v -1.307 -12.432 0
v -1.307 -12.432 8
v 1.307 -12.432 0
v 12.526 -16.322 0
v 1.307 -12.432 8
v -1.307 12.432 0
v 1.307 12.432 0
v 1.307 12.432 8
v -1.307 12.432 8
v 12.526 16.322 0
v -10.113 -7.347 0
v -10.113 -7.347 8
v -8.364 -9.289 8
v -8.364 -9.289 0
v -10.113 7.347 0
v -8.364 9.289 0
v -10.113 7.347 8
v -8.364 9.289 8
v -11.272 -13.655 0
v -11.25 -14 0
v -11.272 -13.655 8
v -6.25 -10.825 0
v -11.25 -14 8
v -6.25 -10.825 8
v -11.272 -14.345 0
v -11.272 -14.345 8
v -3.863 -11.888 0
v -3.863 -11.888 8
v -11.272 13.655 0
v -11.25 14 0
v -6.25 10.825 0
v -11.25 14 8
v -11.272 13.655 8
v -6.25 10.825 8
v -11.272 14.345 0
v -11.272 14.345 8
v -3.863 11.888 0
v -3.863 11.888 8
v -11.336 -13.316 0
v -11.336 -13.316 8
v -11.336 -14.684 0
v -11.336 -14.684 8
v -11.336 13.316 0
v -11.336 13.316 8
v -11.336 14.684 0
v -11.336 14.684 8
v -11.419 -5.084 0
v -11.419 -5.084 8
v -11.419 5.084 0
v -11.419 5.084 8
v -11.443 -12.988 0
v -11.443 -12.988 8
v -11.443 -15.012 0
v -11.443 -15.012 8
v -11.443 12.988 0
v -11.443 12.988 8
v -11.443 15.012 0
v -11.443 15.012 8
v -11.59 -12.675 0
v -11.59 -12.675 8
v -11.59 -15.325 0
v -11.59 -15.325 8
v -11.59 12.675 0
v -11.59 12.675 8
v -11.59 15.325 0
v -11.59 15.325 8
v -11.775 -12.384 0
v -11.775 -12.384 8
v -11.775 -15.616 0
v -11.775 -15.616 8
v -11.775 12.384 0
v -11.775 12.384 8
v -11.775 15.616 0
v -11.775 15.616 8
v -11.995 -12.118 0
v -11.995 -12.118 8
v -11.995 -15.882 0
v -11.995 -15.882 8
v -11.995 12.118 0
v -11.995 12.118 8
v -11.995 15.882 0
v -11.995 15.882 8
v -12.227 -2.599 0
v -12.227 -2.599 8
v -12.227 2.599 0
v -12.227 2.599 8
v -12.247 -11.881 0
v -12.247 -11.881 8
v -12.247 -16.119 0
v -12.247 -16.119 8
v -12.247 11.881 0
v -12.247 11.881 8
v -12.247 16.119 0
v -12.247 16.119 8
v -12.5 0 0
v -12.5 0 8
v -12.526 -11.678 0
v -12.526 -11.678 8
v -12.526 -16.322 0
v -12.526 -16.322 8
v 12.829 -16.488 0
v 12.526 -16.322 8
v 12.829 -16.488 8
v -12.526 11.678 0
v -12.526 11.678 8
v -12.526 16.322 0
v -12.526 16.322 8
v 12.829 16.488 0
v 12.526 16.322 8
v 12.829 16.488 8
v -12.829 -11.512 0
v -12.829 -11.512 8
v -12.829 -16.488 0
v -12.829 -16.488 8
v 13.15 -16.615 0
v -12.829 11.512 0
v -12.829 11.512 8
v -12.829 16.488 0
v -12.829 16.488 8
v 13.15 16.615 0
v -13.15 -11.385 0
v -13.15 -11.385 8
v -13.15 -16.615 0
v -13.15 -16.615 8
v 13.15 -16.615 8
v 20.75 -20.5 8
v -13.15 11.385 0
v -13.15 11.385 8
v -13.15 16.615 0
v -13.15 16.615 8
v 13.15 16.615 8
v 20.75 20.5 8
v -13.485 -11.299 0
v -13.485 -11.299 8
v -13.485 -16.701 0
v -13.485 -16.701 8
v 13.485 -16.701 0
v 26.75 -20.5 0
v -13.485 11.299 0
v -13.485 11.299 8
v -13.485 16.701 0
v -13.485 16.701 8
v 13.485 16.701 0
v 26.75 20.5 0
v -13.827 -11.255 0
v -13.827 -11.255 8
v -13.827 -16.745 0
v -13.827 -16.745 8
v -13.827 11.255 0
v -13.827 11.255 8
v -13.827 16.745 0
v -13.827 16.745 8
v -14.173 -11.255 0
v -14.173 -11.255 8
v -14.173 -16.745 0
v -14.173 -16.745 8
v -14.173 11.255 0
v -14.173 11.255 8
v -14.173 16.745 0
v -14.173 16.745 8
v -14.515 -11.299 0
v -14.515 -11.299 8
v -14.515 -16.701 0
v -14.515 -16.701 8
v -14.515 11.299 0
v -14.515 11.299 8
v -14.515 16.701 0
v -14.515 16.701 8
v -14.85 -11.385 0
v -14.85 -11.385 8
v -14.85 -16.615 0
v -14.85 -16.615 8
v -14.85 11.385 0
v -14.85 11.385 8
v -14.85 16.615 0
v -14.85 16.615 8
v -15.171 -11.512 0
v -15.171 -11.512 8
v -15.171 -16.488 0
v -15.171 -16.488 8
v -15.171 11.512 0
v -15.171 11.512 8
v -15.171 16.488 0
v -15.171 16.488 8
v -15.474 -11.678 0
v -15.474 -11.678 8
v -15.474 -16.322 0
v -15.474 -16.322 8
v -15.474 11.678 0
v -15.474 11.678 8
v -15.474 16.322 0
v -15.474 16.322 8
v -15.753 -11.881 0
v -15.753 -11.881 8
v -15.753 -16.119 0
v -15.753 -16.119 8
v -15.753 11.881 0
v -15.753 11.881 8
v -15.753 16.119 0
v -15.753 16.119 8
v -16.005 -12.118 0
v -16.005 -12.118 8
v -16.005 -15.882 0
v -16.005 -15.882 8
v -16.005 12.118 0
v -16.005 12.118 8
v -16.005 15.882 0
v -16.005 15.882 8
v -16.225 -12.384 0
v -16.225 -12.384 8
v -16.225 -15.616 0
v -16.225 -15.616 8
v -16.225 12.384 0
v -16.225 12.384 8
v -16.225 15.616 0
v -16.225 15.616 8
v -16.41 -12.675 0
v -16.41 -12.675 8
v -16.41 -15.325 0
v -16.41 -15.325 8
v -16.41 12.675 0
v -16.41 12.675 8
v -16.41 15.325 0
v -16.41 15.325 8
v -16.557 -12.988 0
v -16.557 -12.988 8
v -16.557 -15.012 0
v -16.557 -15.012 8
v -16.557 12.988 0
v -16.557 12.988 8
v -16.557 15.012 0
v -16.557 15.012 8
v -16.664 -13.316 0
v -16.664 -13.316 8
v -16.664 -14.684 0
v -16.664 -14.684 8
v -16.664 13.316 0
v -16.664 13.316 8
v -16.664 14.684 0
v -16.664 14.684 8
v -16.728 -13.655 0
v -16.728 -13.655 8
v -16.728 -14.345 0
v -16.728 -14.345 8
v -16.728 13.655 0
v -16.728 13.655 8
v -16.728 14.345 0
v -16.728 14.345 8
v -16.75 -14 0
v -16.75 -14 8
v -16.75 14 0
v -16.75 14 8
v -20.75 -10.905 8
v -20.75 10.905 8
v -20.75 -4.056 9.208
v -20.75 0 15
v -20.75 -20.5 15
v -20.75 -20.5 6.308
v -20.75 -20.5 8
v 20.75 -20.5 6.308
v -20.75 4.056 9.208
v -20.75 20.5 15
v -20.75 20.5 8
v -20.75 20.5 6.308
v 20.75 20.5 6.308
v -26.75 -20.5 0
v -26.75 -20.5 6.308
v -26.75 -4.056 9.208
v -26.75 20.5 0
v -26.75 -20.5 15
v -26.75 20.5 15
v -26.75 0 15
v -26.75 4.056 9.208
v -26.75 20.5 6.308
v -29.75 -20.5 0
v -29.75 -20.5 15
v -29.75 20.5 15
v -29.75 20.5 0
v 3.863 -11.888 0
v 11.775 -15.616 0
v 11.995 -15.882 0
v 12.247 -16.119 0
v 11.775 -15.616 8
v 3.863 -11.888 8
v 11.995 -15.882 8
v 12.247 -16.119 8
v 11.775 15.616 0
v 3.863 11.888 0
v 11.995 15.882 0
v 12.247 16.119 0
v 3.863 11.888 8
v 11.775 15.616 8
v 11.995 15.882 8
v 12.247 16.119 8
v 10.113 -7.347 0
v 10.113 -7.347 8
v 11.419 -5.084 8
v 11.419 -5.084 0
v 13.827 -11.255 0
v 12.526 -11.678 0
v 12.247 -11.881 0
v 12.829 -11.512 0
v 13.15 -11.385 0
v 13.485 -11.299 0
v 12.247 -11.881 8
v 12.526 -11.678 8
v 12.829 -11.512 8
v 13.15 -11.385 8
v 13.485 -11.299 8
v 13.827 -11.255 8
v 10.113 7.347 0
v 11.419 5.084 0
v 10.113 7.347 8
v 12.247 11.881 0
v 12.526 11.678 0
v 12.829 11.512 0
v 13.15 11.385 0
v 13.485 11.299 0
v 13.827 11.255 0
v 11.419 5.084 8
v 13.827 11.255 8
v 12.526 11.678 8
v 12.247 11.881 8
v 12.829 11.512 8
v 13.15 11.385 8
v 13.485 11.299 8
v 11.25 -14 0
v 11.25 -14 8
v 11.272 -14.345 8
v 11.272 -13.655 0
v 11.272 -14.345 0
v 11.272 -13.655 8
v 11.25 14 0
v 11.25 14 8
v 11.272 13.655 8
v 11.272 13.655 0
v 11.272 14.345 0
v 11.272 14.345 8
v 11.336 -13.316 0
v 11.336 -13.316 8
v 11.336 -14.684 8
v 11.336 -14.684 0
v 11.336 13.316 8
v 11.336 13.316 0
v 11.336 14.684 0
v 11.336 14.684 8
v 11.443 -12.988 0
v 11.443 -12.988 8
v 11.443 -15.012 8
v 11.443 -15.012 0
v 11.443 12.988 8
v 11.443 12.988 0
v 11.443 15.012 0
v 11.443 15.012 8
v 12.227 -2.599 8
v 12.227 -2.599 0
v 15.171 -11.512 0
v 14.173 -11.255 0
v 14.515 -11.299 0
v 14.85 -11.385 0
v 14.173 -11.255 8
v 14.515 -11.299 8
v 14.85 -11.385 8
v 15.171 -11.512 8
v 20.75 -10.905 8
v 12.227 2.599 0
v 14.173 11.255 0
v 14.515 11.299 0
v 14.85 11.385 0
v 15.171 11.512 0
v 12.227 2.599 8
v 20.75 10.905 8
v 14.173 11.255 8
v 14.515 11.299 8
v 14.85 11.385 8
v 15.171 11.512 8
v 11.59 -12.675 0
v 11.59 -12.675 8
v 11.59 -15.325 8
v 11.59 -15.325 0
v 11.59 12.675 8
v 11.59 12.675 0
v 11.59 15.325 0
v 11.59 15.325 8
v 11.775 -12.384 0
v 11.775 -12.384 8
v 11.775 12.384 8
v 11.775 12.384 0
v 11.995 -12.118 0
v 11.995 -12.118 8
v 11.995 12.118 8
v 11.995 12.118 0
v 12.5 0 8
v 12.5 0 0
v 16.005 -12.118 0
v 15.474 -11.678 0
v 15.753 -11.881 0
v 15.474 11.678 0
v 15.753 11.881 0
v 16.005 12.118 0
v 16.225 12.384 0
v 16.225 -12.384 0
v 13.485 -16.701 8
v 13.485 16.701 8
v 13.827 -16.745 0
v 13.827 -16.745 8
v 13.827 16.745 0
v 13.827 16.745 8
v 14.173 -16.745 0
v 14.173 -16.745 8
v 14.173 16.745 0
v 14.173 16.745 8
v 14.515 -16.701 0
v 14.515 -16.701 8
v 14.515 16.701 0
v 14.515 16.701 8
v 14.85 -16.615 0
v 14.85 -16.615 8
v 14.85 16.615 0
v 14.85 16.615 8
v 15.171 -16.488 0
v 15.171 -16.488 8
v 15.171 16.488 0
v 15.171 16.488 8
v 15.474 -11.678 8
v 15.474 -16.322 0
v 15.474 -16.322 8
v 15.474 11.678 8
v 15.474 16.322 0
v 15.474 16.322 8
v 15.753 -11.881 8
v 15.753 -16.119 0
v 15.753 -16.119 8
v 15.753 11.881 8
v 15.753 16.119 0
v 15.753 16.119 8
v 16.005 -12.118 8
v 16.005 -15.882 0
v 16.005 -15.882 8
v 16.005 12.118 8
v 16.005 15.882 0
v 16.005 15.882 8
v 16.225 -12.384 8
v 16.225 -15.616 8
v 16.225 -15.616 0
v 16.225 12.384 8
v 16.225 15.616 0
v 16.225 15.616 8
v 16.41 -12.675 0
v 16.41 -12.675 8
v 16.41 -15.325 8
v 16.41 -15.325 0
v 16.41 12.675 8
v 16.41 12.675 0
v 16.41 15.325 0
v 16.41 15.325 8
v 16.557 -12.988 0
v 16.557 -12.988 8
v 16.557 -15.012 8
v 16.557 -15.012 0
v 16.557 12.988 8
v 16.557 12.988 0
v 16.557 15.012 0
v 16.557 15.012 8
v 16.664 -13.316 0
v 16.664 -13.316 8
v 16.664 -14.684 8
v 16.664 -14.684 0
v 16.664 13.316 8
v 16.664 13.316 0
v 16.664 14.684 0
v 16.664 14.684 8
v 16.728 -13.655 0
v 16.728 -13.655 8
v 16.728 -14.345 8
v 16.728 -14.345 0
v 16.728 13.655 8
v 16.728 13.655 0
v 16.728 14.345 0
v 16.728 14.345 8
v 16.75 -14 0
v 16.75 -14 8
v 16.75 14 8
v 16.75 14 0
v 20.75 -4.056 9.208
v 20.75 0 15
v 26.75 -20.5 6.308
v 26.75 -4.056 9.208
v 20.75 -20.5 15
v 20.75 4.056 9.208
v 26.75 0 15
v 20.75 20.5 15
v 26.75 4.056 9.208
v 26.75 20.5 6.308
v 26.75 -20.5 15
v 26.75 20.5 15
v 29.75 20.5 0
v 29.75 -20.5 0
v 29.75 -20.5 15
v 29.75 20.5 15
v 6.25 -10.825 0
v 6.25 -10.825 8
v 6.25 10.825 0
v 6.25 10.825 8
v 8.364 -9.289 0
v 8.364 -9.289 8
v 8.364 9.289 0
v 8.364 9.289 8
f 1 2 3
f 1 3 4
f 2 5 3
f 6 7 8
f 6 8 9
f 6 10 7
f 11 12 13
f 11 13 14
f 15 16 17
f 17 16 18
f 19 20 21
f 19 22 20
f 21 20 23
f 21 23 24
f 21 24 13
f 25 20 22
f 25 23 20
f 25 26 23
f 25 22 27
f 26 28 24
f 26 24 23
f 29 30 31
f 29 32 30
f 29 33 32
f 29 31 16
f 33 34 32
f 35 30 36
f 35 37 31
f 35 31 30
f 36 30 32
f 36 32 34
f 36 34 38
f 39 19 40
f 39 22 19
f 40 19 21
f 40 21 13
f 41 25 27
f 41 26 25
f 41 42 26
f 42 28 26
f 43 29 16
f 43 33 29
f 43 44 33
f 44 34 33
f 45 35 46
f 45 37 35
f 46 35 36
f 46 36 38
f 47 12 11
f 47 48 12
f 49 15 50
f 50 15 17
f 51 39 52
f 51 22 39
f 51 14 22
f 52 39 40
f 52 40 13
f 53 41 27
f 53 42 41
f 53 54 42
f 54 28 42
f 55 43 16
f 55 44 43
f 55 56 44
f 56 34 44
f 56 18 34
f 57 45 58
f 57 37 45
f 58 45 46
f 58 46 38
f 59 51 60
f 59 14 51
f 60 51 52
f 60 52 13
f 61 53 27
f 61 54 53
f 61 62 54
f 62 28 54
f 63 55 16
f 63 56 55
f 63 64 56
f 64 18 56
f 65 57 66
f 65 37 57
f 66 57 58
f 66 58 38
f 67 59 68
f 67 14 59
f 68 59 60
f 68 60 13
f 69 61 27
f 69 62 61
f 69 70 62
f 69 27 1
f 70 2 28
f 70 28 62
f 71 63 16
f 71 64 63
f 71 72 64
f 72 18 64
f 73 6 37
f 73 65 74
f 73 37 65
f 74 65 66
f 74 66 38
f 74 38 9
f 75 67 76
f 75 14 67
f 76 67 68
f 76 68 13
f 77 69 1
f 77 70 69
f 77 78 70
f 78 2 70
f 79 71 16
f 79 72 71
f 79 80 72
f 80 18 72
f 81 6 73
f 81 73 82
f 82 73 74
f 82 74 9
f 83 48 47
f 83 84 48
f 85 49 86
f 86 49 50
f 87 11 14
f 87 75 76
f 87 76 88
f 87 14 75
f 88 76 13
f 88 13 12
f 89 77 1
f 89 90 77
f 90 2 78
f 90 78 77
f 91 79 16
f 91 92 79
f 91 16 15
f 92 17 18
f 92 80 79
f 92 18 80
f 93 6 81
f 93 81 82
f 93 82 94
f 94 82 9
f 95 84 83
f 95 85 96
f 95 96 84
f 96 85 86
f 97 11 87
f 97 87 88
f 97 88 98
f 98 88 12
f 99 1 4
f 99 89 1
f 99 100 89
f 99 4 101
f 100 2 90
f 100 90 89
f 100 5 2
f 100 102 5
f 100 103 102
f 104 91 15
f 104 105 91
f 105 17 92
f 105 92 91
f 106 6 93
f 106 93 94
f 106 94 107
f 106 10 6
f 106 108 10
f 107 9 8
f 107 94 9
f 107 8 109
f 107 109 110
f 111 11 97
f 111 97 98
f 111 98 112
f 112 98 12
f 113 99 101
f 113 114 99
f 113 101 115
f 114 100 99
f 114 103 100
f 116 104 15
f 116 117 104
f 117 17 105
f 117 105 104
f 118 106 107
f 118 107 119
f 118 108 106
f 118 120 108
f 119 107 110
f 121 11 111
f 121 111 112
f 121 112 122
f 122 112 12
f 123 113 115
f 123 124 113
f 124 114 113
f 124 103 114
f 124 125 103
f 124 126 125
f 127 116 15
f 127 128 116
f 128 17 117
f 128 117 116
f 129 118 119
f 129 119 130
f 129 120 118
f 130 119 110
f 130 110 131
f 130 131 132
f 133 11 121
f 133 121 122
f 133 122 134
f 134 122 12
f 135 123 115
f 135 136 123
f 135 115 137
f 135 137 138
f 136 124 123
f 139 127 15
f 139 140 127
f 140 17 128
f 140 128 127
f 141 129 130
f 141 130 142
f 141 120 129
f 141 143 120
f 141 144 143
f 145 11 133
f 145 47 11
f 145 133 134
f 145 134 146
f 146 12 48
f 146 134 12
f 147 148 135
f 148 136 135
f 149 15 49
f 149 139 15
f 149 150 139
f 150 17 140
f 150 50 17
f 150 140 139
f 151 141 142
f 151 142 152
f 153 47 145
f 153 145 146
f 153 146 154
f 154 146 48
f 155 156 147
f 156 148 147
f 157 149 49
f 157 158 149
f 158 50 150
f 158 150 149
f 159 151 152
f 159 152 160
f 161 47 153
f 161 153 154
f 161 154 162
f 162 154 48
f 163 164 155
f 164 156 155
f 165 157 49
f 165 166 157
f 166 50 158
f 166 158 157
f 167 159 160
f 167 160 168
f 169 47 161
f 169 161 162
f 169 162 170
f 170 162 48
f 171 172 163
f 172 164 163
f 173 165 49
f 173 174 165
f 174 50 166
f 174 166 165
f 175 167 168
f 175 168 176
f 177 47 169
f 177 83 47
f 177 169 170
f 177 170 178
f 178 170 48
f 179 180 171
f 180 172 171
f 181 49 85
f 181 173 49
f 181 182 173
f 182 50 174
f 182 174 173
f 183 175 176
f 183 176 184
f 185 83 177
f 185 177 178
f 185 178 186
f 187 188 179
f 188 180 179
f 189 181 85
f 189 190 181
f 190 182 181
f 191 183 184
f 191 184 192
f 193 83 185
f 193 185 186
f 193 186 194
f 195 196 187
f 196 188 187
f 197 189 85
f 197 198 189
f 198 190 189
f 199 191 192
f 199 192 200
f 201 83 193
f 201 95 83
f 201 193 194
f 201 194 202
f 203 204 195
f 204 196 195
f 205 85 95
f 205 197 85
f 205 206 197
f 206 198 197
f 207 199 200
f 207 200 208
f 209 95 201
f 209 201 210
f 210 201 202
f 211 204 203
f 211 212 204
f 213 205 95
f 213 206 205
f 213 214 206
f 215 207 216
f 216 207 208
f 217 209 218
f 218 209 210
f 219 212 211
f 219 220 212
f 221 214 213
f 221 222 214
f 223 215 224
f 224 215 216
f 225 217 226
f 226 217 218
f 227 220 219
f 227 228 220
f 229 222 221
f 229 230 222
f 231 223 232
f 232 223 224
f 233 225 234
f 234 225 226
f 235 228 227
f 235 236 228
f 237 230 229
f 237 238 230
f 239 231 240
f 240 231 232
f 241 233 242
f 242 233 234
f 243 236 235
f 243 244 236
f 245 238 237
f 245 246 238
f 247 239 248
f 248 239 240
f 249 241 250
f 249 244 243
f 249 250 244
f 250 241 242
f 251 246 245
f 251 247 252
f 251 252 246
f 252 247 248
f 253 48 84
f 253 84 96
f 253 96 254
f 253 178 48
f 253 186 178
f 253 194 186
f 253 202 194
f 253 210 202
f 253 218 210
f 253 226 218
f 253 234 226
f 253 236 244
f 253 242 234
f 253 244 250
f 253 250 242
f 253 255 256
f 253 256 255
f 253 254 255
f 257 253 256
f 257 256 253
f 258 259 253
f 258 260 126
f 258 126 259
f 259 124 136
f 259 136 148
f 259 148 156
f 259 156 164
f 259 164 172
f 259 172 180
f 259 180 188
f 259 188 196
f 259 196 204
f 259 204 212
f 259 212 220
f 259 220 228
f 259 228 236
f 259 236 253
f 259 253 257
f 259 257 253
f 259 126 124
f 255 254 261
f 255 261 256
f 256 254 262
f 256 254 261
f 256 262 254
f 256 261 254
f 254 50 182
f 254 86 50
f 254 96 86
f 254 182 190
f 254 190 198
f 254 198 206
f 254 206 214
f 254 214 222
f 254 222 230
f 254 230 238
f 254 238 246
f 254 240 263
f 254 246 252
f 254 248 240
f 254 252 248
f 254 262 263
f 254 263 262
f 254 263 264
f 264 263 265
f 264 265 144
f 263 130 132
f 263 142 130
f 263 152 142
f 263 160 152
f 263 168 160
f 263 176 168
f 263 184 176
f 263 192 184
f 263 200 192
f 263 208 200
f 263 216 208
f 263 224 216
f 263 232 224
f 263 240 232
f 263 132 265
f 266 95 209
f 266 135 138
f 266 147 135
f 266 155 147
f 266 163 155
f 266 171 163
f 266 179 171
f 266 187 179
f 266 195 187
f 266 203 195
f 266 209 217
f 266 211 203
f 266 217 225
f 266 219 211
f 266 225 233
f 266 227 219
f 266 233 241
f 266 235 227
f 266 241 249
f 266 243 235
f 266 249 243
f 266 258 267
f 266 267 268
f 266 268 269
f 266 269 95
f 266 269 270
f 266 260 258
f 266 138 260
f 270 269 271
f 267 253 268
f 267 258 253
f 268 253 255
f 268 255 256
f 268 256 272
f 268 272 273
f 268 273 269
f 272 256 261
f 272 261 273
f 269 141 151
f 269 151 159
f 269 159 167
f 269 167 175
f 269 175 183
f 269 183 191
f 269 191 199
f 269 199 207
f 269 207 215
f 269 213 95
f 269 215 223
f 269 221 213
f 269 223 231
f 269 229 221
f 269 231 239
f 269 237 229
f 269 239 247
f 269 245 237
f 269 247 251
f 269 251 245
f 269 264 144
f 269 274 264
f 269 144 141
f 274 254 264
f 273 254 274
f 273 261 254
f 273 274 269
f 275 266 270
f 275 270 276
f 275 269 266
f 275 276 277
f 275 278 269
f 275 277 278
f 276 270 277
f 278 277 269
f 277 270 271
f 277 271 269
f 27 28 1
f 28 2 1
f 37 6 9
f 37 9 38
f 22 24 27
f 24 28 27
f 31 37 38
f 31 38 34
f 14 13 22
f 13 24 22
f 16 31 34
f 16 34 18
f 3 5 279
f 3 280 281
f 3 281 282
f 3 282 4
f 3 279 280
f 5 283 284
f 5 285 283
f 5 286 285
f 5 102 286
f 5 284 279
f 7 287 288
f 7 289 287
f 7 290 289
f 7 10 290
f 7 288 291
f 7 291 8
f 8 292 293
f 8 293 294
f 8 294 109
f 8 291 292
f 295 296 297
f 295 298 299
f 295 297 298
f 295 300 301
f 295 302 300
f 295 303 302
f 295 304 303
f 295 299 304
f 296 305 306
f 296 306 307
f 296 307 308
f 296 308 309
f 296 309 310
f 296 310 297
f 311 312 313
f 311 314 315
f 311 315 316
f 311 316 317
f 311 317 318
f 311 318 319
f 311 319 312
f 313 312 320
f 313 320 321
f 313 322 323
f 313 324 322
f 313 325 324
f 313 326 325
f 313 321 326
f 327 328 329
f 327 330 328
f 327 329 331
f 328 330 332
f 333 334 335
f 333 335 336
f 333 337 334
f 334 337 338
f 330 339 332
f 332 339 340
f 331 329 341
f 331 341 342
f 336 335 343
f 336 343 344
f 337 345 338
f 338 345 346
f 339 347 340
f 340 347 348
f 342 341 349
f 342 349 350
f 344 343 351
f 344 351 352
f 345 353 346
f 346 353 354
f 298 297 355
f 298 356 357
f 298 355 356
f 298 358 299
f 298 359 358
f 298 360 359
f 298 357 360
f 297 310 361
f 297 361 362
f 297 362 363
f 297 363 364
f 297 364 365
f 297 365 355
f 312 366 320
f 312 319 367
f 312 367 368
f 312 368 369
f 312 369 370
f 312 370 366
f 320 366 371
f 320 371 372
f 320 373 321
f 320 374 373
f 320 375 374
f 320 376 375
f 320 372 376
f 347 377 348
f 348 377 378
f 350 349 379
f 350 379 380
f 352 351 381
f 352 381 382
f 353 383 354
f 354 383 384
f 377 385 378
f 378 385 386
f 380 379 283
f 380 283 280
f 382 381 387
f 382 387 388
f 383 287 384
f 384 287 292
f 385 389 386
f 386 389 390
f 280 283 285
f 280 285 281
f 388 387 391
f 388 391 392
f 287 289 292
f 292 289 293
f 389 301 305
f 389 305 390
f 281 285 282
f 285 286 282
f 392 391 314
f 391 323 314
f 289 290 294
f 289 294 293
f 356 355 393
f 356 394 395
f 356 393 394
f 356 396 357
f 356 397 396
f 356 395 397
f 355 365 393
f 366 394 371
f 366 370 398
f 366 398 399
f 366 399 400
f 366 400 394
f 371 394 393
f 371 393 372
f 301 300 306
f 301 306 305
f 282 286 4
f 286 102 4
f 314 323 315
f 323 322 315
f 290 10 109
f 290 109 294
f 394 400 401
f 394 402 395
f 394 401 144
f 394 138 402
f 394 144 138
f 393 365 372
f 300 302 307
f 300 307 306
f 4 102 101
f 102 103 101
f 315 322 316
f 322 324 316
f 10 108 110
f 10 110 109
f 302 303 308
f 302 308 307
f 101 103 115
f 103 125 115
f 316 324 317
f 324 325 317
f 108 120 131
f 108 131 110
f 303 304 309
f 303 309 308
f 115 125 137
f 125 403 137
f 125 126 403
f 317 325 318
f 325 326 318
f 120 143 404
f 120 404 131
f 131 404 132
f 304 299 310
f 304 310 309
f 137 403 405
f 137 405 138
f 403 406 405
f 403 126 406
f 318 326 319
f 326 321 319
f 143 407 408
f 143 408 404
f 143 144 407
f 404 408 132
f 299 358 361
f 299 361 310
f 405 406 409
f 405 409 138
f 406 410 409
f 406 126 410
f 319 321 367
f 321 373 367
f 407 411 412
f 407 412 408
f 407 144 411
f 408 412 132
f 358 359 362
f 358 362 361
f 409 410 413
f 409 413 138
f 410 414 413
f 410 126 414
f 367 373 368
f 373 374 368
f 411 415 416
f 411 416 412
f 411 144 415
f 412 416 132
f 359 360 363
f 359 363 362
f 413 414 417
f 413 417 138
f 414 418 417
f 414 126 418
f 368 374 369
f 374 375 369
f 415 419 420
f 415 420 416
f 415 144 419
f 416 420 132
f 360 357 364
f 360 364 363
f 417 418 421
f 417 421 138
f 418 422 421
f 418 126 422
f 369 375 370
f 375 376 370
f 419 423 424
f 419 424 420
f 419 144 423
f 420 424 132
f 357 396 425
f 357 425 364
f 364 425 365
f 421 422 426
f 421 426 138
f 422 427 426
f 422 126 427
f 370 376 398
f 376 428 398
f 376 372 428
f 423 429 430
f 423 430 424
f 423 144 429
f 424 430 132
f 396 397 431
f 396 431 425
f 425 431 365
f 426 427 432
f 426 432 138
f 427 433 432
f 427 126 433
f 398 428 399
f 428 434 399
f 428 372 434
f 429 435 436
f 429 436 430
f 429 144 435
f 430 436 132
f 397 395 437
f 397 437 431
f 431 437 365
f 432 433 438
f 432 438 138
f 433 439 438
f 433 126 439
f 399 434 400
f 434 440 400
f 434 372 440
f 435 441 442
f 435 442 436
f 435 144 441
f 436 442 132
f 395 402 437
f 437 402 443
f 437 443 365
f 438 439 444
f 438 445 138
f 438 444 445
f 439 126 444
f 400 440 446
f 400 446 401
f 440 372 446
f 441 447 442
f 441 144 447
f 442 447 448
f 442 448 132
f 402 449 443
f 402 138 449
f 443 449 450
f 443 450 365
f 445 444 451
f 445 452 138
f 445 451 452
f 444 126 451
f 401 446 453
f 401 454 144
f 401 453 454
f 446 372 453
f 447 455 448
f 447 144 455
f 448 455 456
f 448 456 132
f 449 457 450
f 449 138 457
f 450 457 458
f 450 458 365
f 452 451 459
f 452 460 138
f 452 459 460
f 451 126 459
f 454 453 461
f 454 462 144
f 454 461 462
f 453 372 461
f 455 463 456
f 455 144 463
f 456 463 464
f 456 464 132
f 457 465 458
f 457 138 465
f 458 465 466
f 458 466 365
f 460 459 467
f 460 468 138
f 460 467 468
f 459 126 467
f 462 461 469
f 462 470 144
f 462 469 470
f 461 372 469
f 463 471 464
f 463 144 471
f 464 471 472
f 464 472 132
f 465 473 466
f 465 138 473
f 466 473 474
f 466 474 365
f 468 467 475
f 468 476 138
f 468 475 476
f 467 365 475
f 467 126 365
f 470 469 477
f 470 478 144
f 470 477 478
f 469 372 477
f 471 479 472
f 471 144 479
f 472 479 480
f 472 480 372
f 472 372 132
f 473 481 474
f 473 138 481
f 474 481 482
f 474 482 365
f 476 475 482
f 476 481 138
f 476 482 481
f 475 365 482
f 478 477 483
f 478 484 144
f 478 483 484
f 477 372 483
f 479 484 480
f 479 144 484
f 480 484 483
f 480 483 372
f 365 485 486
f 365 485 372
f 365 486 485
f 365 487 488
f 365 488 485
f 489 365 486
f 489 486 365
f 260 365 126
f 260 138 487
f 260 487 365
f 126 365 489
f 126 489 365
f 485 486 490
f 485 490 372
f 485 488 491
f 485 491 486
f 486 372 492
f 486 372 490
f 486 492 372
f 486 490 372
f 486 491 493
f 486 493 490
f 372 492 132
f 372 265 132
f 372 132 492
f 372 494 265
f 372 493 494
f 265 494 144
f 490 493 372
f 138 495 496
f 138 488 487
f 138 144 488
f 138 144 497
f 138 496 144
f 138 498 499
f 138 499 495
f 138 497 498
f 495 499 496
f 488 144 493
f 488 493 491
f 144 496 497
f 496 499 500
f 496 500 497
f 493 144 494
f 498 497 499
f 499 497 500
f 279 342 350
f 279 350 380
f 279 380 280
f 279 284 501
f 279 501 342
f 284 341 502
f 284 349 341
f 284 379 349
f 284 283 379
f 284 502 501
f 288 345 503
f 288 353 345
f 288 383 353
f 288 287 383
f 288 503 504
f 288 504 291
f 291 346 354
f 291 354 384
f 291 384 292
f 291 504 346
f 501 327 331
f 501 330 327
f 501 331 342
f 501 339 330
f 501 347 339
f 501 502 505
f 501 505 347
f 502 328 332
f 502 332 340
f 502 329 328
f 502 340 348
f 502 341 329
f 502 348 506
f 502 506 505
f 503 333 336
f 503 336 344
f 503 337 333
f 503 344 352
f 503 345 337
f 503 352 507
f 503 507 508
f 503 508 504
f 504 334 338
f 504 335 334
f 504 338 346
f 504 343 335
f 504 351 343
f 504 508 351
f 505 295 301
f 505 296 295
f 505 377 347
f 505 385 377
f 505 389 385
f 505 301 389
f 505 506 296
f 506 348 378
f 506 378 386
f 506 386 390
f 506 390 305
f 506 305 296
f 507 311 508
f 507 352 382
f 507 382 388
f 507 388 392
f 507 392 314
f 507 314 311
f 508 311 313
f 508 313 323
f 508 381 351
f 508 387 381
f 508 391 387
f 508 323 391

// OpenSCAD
// file: rotorhead_kardan_centerpart.scad
include <../parameters.scad>

//kloub stredná časť
module rotorhead_kardan_center_part() {
    a=60;
    b=14;

    outer_x = inner_x + 2*brit_width;
    outer_y = inner_y + 2*brit_width;
    outer_height = wall_height + plate_thickness;
    
    difference(){     
        translate ([0,0,outer_height/2]) {
            cube([outer_x,outer_y,outer_height],center = true);
            }
        translate([0,0,wall_height + plate_thickness]){
            cube([inner_x,inner_y,wall_height*2],center = true);
            }
        hull() {
            translate([-(inner_x/2 - hole_r),0,-outer_height]) {
                cylinder (h=outer_height*4, r=hole_r,$fn = 100);
                }
            translate([inner_x/2 - hole_r,0,-outer_height]) {
                cylinder (h=outer_height*4, r=hole_r,$fn = 100);
                }
            }
        translate([0,0,(a * sqrt(2) / 2) + plate_thickness+wall_height/2]) {
                rotate ([45,0,0]) {
                    cube([2*inner_x + 2 * brit_width, a,a],center=true);
                    }
                } 
        translate([0,-b/2-inner_y/2+kardan_clearance,-(b * sqrt(2) / 2) + plate_thickness+wall_height/2]){
            rotate ([0,45,0]){
                cube(b,center=true);
                }
            }
        translate([0,b/2+inner_y/2-kardan_clearance,-(b * sqrt(2) / 2) + plate_thickness+wall_height/2]){
            rotate ([0,45,0]){
                cube(b,center=true);
                }
            }           
        }
    }

rotorhead_kardan_center_part();
// main file
include <../parameters.scad>
use <./rotorhead_kardan_centerpart.scad>

module mirror_copy(v = [1, 0, 0]) {
    children();
    mirror(v) children();
}

draft = true;

module rotorhead_kardan_bottom_testpart() {

    sokl_height=15;
    a=(brit_width + kardan_clearance)/(brit_width); //rozšíření o epsilon  do fce scale prepoč. na nasobky
     
    union(){
         mirror_copy([1,0,0]){
                //brit
                translate([(bearing_width+global_clearance)/2,0,0])
                    scale([a,1,1])
                        translate([-inner_x/2,0,0])
                            difference(){
                                //zakald britu
                                translate([inner_x/2+brit_width/2,0,sokl_height/2])
                                    cube([brit_width,bearing_h,sokl_height],center = true);
                                
                                translate([0,0,sokl_height])
                                    rotate([180-roll_stop,0,0])
                                        translate([0,0,-plate_thickness-wall_height/2])
                                            rotorhead_kardan_center_part();
                                
                                translate([0,0,sokl_height])
                                    rotate([180+roll_stop,0,0])
                                        translate([0,0,-plate_thickness-wall_height/2])
                                            rotorhead_kardan_center_part();
                                }
                
                //stop
                translate([(bearing_width+global_clearance)/2 +a*brit_width+britstop_thickness/2,0, sokl_height/2])
                    cube([britstop_thickness, bearing_h, sokl_height],center = true);
            }
            
         difference(){
            // základní tvar pro prirubu
            translate([0,0, sokl_height/2])
                cube([bearing_width+global_clearance, bearing_h, sokl_height],center = true);

            //uchycení a díra pro pohyb
            translate([0, 0, -sokl_height/2])
                cylinder(h=2*sokl_height, d=bearing_db);

            for (i=[[bearing_m/2, bearing_m/2, 0, 0],
                    [-bearing_m/2, bearing_m/2, 0, 0],
                    [-bearing_m/2, -bearing_m/2, 0, 1],
                    [bearing_m/2, -bearing_m/2, 0, 1]]) {
                translate(i+[0,0,-sokl_height/2])
                    cylinder(h = 2*sokl_height, d = M5_screw_diameter, $fn = draft ? 50 : 100);
                    
                }
                
            //místo pro ložisko
            translate([0,0, sokl_height/2+sokl_height-bearing_a_center_of_rotation])
                cube([bearing_width+global_clearance, bearing_h+1, sokl_height],center = true);
            
            }
        
        }
    }
    

rotorhead_kardan_bottom_testpart(); 
